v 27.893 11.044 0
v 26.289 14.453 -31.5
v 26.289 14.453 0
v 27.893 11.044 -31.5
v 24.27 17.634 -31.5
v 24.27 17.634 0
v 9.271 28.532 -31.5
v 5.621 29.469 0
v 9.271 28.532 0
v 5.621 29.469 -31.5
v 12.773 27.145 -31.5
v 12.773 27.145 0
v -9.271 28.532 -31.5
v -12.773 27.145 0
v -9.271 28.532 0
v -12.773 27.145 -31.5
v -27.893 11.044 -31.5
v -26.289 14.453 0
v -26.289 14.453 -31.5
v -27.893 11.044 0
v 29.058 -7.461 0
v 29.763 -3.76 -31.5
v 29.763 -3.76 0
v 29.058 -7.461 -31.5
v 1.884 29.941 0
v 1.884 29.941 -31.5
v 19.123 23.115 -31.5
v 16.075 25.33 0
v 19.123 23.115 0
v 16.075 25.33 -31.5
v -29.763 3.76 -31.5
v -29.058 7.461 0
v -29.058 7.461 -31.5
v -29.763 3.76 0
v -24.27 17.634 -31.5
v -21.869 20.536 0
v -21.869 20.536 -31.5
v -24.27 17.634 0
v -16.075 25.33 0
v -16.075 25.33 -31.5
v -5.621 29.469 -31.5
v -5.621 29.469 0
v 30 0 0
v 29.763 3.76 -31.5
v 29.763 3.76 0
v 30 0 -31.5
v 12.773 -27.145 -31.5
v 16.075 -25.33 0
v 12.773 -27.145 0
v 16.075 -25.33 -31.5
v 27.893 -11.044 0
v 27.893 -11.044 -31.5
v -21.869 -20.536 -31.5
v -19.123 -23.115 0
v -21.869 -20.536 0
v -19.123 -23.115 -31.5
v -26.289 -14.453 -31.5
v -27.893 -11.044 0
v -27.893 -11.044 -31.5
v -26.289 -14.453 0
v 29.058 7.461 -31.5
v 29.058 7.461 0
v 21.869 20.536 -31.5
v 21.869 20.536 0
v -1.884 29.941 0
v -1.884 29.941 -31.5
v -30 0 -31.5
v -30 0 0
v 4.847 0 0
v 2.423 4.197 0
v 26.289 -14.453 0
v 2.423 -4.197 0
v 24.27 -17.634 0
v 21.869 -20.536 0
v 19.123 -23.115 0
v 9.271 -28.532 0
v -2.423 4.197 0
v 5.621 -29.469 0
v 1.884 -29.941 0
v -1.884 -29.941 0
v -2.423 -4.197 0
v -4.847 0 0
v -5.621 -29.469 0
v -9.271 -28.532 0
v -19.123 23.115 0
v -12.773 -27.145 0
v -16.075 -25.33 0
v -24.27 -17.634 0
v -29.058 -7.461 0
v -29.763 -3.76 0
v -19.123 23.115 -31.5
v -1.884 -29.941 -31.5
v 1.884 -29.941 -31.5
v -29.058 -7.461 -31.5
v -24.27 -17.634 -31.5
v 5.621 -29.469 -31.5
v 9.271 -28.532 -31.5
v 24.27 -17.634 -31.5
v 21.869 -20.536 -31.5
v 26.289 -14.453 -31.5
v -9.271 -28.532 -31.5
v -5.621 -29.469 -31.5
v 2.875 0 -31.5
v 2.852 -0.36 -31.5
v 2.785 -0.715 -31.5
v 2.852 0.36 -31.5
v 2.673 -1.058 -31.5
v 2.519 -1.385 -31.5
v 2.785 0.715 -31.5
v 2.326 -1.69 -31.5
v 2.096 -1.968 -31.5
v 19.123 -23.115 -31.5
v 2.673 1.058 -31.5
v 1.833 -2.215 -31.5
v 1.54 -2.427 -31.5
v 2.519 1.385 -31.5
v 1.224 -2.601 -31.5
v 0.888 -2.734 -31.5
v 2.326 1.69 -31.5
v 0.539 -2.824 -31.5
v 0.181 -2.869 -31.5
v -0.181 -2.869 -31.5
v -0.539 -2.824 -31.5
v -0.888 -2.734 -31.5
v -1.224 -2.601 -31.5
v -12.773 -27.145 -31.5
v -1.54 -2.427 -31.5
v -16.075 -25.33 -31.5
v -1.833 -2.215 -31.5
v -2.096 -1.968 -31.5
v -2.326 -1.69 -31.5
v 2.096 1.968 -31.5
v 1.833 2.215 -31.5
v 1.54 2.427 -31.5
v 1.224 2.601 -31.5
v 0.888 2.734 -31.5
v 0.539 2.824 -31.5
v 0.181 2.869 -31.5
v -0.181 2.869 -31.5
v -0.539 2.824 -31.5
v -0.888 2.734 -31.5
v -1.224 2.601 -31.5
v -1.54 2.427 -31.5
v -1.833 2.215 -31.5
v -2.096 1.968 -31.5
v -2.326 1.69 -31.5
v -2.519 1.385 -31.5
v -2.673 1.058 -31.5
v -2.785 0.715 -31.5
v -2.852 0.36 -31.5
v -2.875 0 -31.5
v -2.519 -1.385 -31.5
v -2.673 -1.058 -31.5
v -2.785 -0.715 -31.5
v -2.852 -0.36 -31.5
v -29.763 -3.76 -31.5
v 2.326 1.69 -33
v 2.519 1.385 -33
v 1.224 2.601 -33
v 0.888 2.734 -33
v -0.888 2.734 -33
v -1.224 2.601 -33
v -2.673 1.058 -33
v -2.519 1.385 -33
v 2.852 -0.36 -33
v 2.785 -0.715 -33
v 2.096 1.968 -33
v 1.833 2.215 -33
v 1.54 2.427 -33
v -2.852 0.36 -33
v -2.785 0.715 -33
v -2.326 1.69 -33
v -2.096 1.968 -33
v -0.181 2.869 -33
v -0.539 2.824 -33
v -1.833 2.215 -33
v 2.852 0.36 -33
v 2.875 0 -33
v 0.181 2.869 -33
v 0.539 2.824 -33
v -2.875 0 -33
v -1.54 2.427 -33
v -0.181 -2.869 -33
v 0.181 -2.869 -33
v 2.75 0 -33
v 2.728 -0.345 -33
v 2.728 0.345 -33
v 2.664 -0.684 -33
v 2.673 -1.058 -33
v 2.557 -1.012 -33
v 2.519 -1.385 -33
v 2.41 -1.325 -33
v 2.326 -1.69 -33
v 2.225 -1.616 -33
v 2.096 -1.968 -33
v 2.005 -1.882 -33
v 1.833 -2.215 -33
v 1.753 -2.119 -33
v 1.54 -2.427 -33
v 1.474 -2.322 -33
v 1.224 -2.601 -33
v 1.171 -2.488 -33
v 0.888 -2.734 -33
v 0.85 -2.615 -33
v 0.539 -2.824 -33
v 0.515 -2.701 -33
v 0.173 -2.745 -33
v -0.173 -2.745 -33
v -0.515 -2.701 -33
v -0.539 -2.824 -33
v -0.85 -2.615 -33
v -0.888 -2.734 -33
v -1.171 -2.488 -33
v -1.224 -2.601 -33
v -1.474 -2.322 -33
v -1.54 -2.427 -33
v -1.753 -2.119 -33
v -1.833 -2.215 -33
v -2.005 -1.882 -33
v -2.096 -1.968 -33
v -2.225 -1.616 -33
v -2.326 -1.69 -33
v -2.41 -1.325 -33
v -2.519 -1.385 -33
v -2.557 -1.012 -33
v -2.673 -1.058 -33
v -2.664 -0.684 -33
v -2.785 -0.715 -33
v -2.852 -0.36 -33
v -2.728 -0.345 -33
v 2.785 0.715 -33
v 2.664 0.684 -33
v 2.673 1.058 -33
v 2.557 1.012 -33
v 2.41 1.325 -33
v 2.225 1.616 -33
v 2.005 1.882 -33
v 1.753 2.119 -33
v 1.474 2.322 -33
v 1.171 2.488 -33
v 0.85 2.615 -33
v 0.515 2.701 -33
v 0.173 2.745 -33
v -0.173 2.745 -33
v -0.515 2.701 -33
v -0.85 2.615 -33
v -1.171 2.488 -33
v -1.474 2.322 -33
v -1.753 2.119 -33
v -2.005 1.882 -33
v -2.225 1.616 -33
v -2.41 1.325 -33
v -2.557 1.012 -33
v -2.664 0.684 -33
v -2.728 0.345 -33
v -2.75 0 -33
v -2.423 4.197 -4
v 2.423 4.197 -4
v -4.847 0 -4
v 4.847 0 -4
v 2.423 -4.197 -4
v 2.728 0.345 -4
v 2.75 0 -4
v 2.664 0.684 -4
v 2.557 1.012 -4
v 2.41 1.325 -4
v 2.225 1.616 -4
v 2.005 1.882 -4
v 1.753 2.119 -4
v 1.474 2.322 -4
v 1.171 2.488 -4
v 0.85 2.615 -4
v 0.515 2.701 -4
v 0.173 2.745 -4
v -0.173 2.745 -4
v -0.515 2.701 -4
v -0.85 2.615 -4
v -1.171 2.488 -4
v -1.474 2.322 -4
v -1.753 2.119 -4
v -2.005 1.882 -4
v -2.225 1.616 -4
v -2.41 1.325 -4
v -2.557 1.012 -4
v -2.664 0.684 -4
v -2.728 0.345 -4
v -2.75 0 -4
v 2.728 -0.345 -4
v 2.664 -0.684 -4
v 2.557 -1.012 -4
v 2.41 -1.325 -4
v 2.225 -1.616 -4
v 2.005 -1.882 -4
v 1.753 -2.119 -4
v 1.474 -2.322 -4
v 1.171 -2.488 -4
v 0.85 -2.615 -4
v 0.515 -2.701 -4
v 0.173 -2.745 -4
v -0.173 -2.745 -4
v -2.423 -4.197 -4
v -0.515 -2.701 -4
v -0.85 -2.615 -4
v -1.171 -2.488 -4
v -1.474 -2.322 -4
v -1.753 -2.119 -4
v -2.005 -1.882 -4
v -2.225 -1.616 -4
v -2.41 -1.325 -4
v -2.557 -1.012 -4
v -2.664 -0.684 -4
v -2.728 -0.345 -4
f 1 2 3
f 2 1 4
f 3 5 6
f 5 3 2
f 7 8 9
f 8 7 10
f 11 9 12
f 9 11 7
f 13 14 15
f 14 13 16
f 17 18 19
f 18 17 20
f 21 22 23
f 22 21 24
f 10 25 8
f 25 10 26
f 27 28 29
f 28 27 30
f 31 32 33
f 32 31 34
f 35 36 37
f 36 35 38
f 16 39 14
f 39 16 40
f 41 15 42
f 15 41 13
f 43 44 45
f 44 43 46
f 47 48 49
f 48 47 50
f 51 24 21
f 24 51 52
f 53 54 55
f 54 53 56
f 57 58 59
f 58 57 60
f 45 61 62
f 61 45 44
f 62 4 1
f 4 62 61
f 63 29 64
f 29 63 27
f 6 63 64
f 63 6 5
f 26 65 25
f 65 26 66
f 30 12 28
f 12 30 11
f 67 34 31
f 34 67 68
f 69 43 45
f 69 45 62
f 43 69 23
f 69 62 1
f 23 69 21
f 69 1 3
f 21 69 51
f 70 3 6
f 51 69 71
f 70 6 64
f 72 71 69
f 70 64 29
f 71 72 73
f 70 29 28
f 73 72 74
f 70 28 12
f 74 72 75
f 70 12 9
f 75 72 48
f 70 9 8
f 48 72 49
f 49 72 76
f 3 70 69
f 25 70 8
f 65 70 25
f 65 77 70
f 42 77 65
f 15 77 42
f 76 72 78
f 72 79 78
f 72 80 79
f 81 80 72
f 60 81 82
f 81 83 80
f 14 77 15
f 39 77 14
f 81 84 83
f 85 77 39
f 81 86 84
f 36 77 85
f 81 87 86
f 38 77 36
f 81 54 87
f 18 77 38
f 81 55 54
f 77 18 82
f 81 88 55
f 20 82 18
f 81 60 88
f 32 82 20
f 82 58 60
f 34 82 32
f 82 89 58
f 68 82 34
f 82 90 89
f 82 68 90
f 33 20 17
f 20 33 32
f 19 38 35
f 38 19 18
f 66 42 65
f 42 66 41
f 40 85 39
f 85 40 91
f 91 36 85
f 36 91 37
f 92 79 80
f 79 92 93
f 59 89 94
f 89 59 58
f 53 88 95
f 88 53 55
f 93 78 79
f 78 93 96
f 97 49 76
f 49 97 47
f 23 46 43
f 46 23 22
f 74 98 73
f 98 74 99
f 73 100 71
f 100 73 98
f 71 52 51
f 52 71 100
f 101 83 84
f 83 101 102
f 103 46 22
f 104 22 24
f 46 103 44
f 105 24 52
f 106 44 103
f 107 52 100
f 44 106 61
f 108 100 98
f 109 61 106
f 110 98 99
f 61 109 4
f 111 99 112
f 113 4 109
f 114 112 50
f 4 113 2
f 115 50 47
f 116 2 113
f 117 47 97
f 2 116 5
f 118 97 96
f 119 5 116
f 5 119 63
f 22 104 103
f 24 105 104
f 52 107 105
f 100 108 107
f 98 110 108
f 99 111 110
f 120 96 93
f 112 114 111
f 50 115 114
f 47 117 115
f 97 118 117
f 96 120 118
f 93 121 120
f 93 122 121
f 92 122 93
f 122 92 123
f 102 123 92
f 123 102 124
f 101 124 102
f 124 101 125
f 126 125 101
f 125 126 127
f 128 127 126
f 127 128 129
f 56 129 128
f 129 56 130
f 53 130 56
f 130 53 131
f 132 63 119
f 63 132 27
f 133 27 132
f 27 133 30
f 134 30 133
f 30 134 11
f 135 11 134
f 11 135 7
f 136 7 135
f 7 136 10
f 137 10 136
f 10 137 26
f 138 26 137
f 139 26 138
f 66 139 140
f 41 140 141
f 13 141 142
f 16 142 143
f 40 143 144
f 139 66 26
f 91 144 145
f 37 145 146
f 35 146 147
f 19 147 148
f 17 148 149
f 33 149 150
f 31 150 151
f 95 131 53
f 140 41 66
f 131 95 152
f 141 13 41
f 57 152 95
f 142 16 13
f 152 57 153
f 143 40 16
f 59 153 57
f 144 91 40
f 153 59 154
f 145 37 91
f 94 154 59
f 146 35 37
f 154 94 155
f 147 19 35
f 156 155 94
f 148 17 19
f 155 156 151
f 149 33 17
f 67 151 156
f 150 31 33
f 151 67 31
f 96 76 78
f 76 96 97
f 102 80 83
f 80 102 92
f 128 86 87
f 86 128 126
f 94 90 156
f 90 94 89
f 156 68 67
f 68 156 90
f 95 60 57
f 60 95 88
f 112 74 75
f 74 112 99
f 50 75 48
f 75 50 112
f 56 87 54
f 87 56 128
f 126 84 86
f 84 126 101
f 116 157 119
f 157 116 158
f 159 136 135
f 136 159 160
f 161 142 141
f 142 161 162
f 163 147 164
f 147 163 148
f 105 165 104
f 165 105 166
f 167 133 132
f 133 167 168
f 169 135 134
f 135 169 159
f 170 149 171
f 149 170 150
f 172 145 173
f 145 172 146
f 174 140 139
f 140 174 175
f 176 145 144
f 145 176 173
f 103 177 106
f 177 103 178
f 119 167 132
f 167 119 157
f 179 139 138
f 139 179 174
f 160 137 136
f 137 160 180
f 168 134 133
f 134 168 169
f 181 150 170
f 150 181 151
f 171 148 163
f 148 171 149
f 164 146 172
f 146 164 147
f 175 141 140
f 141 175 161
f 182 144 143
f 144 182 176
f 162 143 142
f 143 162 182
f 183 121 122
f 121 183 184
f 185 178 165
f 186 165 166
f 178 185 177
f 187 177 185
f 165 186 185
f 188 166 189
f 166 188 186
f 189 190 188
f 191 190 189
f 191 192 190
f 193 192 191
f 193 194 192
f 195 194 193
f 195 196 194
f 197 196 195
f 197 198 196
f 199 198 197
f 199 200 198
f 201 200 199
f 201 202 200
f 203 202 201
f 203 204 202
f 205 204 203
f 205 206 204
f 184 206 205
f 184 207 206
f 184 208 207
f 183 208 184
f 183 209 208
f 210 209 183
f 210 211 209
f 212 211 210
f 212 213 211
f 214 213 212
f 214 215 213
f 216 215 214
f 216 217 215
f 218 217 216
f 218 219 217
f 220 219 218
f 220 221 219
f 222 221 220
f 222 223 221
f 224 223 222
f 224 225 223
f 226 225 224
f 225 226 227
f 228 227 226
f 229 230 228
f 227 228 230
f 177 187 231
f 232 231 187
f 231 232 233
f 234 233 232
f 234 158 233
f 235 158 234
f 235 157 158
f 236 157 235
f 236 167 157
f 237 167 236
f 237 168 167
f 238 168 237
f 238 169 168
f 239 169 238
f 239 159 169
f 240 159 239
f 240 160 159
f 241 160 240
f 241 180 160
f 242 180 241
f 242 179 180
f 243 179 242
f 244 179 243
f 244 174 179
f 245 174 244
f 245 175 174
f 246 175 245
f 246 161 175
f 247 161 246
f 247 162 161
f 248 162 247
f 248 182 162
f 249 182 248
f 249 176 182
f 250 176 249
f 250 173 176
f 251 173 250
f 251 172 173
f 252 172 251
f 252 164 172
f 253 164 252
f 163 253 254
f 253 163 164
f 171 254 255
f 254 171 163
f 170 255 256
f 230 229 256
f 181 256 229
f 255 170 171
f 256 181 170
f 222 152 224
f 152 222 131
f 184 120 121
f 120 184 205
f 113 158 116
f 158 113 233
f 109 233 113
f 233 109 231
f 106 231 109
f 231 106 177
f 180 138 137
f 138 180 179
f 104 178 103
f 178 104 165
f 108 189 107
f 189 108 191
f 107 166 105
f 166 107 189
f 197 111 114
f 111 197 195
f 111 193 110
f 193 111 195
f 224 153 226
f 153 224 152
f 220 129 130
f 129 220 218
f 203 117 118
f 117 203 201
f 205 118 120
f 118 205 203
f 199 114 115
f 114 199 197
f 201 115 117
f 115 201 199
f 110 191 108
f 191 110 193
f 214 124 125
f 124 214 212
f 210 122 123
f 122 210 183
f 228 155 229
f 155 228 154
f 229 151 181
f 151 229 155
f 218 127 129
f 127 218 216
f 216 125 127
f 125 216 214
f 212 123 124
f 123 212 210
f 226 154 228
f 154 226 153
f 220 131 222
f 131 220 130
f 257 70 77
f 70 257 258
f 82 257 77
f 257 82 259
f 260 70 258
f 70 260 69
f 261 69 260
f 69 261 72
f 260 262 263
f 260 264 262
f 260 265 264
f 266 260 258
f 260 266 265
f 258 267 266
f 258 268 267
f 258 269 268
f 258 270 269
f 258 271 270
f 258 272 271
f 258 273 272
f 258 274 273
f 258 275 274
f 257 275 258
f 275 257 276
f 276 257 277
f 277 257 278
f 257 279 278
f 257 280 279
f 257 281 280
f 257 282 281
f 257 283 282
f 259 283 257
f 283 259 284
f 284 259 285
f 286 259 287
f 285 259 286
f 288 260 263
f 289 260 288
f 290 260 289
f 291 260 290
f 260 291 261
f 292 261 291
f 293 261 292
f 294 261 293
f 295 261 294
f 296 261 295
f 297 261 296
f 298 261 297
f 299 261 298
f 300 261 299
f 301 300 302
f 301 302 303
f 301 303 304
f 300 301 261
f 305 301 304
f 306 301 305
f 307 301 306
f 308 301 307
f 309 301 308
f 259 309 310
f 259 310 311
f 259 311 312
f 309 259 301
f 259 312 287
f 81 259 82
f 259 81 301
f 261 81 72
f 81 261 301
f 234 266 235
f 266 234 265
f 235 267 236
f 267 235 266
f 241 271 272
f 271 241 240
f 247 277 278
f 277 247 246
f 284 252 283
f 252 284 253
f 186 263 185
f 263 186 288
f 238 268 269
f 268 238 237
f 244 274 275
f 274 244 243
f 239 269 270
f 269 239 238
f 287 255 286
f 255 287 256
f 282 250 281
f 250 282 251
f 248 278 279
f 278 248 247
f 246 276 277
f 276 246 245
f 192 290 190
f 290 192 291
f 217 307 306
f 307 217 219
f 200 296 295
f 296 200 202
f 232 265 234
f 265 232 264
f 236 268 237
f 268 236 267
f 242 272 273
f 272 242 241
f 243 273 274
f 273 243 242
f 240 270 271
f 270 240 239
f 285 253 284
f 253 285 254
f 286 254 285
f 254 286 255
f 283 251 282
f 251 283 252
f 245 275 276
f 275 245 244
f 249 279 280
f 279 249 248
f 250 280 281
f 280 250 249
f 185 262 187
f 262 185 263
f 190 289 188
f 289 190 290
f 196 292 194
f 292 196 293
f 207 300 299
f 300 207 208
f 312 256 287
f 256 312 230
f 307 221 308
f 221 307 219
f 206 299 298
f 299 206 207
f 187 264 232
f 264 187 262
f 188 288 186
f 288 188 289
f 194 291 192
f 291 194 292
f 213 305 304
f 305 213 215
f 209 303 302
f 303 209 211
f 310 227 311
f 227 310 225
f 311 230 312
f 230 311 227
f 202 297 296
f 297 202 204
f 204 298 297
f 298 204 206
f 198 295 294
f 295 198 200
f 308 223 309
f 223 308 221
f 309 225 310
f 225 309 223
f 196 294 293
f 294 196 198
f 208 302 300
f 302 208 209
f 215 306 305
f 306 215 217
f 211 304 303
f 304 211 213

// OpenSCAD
$fn = 50;

difference() {
	union() {
		translate(v = [0, 0, -31.5]) {
			cylinder(h = 31.5, r = 30.0);
		}
		#translate(v = [0, 0, -33.0]) {
			cylinder(h = 33, r = 2.875);
		}
	}
	union() {
		translate(v = [0, 0, 0]) {
			rotate(a = [0, 0, 0]) {
				difference() {
					union() {
						translate(v = [0, 0, -4]) {
							linear_extrude(height = 4) {
								polygon(points = [[4.8468, 0.0], [2.4234000000000004, 4.197451927062417], [-2.423399999999999, 4.197451927062417], [-4.8468, 5.935618106107392e-16], [-2.423400000000002, -4.197451927062416], [2.423399999999997, -4.197451927062419]]);
							}
						}
					}
					union();
				}
			}
		}
		#translate(v = [0, 0, -100.0]) {
			cylinder(h = 200, r = 2.75);
		}
	}
}
